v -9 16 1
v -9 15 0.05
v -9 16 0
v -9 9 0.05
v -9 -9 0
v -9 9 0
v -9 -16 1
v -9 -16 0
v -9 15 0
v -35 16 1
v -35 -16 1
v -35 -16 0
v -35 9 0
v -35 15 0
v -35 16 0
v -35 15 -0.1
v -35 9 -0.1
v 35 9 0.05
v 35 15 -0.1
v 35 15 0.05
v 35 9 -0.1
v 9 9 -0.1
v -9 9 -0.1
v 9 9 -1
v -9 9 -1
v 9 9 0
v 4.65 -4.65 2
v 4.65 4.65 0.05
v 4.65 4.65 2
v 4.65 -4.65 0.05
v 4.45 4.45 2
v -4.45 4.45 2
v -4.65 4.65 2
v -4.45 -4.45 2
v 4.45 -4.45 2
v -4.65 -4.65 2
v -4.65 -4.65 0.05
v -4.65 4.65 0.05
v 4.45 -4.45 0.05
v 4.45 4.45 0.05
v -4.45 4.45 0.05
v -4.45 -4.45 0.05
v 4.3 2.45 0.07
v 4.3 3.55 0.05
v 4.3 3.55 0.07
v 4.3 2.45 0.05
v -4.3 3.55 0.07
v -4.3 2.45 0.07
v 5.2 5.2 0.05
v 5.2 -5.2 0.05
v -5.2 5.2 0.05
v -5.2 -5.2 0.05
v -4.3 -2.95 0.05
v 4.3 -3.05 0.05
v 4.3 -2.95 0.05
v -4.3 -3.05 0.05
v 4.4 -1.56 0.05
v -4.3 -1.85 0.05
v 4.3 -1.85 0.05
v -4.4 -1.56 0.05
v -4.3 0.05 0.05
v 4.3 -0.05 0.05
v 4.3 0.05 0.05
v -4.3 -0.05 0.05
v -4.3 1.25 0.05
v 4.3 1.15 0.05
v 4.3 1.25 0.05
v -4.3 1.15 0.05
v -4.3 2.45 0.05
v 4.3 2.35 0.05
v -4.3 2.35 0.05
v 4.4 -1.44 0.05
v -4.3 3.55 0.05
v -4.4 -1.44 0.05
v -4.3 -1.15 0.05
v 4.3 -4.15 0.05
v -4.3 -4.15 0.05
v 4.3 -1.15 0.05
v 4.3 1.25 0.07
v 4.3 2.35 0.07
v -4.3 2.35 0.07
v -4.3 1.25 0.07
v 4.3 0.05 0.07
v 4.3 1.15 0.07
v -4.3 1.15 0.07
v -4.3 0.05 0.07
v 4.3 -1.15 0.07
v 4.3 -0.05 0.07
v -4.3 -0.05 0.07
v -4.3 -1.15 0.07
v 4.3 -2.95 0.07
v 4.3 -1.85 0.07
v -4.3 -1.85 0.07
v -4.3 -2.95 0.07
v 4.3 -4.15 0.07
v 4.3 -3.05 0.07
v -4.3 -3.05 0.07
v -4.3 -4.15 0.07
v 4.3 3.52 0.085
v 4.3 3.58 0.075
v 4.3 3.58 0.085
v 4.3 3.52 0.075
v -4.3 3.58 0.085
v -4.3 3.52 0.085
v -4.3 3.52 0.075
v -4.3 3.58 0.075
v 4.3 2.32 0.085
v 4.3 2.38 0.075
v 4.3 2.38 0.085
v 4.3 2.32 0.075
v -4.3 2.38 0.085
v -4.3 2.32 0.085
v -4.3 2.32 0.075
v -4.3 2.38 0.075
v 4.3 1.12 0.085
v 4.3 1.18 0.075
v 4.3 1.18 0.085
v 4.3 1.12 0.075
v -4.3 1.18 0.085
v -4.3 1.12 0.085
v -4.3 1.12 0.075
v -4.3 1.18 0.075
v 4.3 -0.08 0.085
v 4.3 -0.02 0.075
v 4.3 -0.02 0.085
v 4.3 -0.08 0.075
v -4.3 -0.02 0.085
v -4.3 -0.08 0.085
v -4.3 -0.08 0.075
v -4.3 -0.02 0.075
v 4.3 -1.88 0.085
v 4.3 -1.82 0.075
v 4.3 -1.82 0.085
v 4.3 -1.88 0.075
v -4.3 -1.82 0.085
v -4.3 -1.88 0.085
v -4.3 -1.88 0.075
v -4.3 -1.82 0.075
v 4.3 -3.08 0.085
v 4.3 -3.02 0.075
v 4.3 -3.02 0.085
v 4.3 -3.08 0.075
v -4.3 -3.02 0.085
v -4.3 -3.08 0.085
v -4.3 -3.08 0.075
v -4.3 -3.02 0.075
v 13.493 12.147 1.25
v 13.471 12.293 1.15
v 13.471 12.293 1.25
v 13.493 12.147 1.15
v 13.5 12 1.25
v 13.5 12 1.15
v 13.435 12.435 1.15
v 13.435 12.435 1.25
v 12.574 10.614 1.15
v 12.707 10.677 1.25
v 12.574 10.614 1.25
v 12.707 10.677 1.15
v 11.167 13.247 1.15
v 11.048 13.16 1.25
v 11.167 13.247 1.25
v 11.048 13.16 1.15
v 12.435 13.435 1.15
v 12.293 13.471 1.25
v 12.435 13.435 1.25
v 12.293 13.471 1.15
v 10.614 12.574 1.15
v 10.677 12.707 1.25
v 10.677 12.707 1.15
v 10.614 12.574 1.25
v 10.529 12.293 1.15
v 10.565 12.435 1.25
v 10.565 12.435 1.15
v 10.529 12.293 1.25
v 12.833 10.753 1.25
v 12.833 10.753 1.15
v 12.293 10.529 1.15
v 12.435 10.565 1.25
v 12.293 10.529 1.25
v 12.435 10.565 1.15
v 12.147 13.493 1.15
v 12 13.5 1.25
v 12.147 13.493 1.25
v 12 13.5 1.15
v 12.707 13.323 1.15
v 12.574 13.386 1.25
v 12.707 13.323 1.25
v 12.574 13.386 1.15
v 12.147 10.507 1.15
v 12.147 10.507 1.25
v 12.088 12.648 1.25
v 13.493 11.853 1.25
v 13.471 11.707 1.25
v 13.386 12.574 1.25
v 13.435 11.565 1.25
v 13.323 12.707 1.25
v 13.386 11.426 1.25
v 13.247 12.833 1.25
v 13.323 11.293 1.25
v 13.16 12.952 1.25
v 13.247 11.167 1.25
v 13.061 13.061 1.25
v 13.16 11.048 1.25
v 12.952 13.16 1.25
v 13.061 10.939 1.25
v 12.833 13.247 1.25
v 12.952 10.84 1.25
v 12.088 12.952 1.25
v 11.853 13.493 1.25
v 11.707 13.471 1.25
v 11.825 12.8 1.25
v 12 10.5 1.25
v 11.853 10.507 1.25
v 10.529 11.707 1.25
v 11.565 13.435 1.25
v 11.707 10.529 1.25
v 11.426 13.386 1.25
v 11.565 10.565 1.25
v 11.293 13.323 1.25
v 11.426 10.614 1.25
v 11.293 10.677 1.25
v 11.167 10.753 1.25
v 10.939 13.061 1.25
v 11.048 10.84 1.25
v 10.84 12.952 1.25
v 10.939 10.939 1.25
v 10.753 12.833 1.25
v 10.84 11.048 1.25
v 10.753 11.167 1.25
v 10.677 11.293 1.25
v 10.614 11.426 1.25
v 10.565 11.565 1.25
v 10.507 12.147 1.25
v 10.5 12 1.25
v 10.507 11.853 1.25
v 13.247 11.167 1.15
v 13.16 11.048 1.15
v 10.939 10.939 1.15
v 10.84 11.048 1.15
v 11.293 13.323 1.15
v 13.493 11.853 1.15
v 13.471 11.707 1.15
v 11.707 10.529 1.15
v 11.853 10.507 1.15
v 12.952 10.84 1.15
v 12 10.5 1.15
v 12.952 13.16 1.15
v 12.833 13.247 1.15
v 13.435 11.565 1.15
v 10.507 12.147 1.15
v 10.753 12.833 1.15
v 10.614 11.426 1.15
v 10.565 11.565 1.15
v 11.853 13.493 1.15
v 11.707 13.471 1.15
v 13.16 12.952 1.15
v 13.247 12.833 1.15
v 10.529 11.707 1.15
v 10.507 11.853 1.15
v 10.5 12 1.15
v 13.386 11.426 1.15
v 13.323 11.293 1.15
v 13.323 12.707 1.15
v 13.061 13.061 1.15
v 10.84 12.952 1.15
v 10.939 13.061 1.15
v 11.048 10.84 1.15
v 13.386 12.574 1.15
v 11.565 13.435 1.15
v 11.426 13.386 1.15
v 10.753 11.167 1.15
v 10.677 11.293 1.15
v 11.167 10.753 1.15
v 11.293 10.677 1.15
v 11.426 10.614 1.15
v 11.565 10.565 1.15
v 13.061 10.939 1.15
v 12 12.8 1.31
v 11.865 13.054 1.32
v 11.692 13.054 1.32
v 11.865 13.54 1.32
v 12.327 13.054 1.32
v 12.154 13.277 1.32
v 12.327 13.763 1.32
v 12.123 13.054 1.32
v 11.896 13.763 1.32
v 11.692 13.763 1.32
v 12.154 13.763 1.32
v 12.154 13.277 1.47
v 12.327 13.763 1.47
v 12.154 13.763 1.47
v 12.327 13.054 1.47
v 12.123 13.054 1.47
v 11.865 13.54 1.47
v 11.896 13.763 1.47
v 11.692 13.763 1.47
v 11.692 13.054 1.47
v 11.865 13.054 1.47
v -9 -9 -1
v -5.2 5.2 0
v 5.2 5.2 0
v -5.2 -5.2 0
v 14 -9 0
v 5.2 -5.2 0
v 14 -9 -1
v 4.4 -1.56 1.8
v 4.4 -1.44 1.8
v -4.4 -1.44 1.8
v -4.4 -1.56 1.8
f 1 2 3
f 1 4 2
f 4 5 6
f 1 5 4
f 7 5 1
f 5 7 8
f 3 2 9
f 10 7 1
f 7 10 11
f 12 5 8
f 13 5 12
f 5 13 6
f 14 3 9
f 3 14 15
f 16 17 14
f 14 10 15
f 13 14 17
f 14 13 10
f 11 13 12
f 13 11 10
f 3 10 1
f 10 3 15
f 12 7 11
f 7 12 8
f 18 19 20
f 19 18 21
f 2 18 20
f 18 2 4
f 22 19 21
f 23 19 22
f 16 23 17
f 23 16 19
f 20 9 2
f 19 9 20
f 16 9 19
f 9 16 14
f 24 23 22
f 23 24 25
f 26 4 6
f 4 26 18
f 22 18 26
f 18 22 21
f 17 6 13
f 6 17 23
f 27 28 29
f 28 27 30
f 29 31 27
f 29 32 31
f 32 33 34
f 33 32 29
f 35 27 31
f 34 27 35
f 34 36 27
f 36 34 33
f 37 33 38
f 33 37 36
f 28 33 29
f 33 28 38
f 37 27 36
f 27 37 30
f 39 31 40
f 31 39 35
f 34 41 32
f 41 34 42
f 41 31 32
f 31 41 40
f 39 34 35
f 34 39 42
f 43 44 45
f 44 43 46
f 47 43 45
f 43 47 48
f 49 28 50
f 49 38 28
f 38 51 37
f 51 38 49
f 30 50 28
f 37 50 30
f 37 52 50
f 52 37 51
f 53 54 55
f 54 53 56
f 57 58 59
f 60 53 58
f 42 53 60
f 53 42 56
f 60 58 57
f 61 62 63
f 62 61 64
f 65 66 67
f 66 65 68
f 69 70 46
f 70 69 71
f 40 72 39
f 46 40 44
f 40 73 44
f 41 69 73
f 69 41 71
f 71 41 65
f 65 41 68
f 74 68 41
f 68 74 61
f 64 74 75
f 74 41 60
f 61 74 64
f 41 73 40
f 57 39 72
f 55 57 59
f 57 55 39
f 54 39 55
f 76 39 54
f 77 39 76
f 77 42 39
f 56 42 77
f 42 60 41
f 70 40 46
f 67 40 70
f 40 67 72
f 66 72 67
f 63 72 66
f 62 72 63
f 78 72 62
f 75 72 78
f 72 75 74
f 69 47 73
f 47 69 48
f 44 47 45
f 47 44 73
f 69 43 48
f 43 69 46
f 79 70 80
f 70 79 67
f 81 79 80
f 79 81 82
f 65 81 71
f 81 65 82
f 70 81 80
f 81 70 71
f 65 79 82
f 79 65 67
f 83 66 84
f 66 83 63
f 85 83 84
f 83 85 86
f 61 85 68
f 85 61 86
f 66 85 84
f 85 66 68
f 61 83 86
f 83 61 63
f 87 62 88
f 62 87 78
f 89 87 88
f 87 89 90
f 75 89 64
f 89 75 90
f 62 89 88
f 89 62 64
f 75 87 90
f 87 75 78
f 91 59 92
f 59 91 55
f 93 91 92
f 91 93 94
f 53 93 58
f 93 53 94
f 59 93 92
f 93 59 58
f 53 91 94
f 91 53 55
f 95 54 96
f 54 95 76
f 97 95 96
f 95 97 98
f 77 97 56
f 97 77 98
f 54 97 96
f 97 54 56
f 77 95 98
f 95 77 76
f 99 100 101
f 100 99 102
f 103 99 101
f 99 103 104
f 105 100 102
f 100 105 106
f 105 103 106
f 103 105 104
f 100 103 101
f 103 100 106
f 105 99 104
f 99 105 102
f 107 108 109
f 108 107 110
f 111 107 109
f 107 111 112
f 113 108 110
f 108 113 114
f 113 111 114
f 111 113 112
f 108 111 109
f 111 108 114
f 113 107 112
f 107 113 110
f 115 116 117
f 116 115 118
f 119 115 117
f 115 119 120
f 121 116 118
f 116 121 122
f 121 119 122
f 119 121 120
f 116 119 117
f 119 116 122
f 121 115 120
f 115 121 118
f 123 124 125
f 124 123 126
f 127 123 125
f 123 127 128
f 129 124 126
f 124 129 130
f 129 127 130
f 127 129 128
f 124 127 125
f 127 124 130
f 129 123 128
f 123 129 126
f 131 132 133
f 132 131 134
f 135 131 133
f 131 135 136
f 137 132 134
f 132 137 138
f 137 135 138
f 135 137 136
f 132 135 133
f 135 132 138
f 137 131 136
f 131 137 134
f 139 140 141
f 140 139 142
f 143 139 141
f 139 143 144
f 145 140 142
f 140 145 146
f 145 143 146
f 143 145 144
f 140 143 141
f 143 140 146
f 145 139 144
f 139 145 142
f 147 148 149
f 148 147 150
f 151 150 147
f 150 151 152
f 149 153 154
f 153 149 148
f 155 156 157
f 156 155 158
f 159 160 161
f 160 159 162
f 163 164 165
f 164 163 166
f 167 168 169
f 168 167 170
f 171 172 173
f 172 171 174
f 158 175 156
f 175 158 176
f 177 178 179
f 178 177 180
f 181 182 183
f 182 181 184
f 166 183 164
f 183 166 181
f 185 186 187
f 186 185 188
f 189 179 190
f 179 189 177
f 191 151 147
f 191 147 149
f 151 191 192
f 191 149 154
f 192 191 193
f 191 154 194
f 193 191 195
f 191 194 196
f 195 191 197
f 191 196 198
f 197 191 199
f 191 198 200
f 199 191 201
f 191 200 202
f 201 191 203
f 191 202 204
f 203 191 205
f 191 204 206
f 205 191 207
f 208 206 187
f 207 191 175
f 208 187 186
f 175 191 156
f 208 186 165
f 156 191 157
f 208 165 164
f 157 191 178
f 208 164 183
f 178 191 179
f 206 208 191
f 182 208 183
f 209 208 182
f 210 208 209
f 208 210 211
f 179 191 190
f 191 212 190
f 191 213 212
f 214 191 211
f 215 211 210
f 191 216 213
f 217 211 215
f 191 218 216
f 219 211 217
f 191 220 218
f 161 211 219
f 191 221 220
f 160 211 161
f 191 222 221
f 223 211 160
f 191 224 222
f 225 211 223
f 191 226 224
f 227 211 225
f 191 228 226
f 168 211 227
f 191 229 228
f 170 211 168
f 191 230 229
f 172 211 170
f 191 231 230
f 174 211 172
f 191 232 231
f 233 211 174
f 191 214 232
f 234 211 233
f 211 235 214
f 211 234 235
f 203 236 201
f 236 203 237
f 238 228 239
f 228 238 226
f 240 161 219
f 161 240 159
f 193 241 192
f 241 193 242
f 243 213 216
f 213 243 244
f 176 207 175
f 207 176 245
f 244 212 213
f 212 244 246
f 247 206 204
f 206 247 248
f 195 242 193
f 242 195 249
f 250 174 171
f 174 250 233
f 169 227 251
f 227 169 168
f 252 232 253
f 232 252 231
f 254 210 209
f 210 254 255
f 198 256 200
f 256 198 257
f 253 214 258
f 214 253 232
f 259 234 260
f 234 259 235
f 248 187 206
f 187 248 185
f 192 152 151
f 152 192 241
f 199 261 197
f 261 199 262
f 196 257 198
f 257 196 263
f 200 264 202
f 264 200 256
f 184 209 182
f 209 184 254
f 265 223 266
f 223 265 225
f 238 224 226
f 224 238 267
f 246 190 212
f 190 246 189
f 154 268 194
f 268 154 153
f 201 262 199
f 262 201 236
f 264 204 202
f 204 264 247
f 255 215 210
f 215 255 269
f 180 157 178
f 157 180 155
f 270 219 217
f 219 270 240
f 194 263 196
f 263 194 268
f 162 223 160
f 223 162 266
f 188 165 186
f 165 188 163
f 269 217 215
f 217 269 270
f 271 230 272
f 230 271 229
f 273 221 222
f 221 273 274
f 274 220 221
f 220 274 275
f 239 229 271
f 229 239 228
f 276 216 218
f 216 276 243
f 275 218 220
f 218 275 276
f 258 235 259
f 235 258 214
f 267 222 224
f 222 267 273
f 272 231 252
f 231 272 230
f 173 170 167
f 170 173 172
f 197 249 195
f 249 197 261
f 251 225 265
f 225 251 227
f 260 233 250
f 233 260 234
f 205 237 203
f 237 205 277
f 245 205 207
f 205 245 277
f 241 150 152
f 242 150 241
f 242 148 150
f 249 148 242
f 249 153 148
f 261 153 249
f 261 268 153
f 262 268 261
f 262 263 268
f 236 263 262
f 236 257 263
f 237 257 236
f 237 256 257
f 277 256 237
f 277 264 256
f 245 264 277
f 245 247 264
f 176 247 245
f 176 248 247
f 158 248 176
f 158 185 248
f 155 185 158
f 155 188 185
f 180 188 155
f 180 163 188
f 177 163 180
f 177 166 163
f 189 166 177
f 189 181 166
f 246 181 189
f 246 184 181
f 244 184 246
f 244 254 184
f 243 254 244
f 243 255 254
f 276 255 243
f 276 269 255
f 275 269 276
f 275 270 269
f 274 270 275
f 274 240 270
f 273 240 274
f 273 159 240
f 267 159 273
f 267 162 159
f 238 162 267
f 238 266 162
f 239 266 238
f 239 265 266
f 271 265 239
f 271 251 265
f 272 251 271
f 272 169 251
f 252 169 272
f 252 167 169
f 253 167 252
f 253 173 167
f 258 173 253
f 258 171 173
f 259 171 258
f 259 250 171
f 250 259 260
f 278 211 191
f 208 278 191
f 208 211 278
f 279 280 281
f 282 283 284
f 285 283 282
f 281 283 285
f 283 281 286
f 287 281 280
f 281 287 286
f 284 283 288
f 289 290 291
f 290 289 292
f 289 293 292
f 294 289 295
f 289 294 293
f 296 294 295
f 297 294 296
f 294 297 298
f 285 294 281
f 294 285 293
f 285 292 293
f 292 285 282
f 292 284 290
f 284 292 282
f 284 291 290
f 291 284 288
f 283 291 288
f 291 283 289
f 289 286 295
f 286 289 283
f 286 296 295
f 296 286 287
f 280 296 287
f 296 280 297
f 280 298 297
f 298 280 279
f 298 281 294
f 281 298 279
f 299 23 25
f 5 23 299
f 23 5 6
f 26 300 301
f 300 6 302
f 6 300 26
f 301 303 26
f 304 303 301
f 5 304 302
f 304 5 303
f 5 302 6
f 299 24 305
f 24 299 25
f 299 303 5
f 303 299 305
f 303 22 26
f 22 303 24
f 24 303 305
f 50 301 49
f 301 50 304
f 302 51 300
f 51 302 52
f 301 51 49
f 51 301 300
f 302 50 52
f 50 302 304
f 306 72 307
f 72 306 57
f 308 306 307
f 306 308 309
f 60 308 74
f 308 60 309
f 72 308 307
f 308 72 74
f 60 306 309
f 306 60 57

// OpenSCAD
// =============================================================================================================
// MASJID NURUL FALAH SUKATANI — STEP 07: FEMALE PRAYER SECTION & HIJAB PARTITION
// Parametric Architectural CSG Model (OpenSCAD)
//
// STRICT CIVIL MANDATE: NORTH AT TOP (+Y AXIS)
// SEPARATE FEMALE PRAYER SECTION + WOODEN CNC HIJAB PARTITION + SAF CARPETS
// =============================================================================================================

$fn = 64;

poly_site = [ [-9, -9], [14, -9], [9, 9], [-9, 9] ];

module surroundings() {
    color([0.22, 0.42, 0.24]) {
        translate([-22, 0, 0.5]) cube([26, 32, 1.0], center = true);
    }
    color([0.18, 0.20, 0.24]) {
        translate([-35, 9, -0.10]) cube([70, 6.0, 0.15]);
    }
}

module step_07_assembly() {
    surroundings();
    // Base Slab
    color([0.28, 0.52, 0.30]) {
        translate([0, 0, -1.0]) linear_extrude(height = 1.0) polygon(poly_site);
    }
    color([0.72, 0.75, 0.80]) {
        translate([0, 0, 0.0]) cube([10.4, 10.4, 0.10], center = true);
    }
    // Cutaway Walls (Half Height to see interior)
    color([0.88, 0.88, 0.85, 0.6]) {
        difference() {
            translate([0, 0, 1.0]) cube([9.3, 9.3, 2.0], center = true);
            translate([0, 0, 1.0]) cube([8.9, 8.9, 2.2], center = true);
        }
    }
    // Wooden CNC Laser Cut Hijab Divider Partition (Teak / Jati Wood Tone)
    color([0.75, 0.45, 0.20]) {
        translate([0, -1.5, 0.9])
            cube([8.8, 0.12, 1.8], center = true);
    }
    // Green Turkish Velvet Saf Carpets (Male Section: Front, Female Section: Rear)
    color([0.10, 0.55, 0.30]) {
        // Male Front Safs
        for (y = [3.0, 1.8, 0.6, -0.6]) {
            translate([0, y, 0.06]) cube([8.6, 1.10, 0.02], center = true);
        }
        // Female Rear Safs
        for (y = [-2.4, -3.6]) {
            translate([0, y, 0.06]) cube([8.6, 1.10, 0.02], center = true);
        }
    }
    // Golden Saf Orientation Border Lines (Aligned West to East)
    color([0.95, 0.80, 0.20]) {
        for (y = [3.55, 2.35, 1.15, -0.05, -1.85, -3.05]) {
            translate([0, y, 0.08]) cube([8.6, 0.06, 0.01], center = true);
        }
    }
    // Compass Rose
    translate([12, 12, 1.2]) {
        color([0.0, 0.75, 0.95]) cylinder(h = 0.10, r = 1.5, center = true);
        color([0.95, 0.2, 0.2]) translate([0, 0.8, 0.05]) rotate([0, 0, 180]) cylinder(h = 0.12, r1 = 0.35, r2 = 0.0, $fn = 3, center = true);
        color([0.9, 0.9, 0.9]) translate([0, 1.4, 0.12]) linear_extrude(height = 0.15) text("N", size = 0.7, font = "Liberation Sans:style=Bold", halign = "center", valign = "center");
    }
}

step_07_assembly();
